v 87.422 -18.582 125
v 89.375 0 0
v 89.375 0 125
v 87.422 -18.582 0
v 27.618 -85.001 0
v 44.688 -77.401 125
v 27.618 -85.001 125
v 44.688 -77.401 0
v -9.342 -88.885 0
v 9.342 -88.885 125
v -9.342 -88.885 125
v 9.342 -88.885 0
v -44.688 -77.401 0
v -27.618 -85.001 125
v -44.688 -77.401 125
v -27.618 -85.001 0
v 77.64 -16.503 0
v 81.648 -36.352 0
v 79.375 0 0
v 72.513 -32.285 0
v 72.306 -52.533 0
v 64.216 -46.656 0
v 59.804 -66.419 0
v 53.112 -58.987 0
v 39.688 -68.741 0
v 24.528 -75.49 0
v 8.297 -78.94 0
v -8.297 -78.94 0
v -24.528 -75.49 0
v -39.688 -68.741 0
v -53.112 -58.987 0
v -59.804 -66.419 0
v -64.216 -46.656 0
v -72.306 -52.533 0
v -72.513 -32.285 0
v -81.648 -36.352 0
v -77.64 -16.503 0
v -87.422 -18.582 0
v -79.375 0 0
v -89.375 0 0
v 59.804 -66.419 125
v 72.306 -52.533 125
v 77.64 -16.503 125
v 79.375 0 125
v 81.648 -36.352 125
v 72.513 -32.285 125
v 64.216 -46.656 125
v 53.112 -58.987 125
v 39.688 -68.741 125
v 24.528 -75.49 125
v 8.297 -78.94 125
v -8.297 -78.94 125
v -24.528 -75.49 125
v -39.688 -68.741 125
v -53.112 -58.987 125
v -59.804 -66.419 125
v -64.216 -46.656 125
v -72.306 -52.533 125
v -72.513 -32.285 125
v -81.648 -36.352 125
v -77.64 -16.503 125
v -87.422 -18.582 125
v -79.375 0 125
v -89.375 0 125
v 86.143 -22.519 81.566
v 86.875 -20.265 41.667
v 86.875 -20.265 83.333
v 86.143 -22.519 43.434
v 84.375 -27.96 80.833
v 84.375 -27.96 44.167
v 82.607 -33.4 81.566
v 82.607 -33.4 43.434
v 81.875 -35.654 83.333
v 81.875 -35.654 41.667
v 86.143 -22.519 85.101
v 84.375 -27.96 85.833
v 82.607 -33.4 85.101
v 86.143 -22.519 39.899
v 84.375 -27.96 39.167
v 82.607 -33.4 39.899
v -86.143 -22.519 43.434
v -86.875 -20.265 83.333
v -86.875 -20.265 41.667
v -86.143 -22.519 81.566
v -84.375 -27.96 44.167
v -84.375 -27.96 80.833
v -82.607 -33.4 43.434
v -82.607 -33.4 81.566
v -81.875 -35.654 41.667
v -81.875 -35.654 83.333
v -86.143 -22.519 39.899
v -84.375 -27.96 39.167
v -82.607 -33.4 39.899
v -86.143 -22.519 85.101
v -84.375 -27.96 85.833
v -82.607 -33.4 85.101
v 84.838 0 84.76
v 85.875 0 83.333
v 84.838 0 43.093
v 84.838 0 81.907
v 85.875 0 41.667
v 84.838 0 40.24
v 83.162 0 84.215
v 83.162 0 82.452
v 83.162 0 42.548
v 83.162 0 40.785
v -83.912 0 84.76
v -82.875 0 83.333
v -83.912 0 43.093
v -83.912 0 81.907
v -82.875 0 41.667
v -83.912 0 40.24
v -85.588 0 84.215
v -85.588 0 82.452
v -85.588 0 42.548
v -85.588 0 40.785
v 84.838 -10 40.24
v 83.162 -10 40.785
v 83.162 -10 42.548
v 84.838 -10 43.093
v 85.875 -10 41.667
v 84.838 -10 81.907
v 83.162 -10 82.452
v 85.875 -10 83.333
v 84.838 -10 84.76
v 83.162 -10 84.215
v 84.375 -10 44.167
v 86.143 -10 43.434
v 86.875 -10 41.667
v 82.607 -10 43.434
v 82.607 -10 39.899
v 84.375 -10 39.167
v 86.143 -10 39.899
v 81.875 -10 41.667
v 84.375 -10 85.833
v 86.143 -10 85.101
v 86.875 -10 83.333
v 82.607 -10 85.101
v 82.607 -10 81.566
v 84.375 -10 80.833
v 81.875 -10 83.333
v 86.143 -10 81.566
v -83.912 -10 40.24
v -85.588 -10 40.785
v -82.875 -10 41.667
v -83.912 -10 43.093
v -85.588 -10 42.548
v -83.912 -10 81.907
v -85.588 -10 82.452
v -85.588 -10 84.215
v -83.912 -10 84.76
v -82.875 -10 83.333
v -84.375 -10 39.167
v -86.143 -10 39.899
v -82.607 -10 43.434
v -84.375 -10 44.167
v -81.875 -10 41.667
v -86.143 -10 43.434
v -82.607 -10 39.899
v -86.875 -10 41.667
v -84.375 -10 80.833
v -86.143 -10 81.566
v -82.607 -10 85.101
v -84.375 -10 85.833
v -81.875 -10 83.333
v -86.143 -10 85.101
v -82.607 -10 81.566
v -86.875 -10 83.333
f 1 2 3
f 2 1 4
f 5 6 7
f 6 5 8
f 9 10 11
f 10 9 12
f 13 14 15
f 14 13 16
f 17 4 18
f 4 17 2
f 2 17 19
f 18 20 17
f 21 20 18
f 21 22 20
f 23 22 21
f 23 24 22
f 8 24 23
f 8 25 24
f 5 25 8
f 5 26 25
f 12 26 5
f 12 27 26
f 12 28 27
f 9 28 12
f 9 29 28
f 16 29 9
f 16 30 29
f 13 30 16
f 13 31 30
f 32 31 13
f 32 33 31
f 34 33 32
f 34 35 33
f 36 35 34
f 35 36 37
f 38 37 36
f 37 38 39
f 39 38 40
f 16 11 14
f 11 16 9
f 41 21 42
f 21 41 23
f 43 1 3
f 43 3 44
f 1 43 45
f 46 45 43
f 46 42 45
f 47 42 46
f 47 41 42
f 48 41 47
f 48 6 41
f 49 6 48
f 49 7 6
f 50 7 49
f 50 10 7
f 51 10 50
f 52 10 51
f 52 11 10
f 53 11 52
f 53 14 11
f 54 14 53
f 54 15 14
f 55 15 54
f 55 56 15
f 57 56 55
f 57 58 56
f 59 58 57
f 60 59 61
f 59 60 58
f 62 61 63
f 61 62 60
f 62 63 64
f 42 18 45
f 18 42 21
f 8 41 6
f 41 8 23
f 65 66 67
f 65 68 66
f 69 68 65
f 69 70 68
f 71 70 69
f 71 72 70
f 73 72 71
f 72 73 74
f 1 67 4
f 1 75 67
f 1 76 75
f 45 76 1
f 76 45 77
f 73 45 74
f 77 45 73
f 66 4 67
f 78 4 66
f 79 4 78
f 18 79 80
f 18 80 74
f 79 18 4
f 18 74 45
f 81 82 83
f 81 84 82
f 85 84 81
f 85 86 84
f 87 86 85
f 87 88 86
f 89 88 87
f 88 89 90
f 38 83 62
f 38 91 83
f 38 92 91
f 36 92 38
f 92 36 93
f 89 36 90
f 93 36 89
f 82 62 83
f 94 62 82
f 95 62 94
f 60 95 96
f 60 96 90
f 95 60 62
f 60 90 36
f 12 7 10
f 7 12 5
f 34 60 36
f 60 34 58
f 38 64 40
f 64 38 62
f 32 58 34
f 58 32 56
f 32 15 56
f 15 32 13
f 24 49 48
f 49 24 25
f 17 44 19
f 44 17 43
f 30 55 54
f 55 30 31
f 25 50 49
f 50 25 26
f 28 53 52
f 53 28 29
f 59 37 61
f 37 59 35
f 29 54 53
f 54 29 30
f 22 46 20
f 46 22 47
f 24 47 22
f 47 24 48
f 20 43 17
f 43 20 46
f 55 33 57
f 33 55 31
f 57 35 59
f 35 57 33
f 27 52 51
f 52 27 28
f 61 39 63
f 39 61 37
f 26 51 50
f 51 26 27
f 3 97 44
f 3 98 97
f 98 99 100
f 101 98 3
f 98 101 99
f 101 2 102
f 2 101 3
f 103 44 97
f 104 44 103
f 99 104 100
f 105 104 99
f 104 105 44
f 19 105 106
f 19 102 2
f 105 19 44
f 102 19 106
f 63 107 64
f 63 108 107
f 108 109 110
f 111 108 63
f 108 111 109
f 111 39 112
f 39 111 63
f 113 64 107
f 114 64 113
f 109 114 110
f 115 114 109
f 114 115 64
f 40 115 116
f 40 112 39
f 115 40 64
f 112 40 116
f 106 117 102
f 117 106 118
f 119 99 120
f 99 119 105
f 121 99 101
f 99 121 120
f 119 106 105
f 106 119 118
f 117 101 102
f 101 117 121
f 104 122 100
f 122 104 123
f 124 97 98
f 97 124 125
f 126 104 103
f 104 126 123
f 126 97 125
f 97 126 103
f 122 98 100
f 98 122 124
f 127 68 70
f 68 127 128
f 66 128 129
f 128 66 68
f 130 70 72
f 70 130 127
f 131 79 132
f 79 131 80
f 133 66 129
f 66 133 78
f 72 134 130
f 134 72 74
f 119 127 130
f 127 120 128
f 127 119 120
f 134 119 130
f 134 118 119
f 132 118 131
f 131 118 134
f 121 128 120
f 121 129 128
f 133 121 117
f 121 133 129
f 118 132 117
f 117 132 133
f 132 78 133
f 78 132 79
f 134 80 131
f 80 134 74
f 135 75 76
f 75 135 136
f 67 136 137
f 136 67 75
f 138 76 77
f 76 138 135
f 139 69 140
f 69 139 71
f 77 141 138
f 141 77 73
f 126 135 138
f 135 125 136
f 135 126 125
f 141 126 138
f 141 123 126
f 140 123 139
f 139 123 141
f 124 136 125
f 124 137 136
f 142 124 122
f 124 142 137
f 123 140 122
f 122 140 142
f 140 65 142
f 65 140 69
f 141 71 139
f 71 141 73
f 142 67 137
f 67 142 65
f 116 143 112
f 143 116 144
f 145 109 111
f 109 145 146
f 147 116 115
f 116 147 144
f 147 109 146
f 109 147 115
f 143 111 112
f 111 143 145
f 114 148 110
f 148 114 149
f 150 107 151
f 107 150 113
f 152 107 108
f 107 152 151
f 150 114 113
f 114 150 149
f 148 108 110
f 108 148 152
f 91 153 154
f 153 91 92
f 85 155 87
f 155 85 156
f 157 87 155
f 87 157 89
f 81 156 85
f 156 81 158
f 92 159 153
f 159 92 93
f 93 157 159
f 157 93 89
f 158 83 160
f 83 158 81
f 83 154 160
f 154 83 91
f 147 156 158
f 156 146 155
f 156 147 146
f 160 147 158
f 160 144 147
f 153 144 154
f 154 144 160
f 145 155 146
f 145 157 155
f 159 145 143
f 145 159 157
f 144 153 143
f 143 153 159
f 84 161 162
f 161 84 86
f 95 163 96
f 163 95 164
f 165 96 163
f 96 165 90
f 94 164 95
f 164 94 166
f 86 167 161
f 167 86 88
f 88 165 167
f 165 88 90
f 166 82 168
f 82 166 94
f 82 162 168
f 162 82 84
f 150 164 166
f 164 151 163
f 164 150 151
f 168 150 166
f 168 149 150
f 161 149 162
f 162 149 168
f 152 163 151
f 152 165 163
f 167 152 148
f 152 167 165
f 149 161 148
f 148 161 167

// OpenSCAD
// tube outside diameter: 158.75mm

TUBE_DIAMETER = 158.75;
COLLAR_LENGTH = 125;
COLLAR_THICKNESS = 10;
BOLT_SHAFT = 3;
BOLT_HEAD = 5;



difference(){
    
    cylinder(r=(TUBE_DIAMETER/2) + COLLAR_THICKNESS, COLLAR_LENGTH);
    
    // tube cut-out
    translate([0,0,-1]){
        cylinder(r=TUBE_DIAMETER/2,h=COLLAR_LENGTH + 3);
    }
    
    // split in half
    translate([-(TUBE_DIAMETER/2)-COLLAR_THICKNESS,0,-1]){
        cube([TUBE_DIAMETER+(COLLAR_THICKNESS*2), (TUBE_DIAMETER/2)+COLLAR_THICKNESS, COLLAR_LENGTH + 3]);
    }
    
    // bolt holes
    // right
    // bottom
    translate([(TUBE_DIAMETER/2)+(COLLAR_THICKNESS/2),0,COLLAR_LENGTH/3]){
        rotate([90,0,0]){
            #cylinder(r=BOLT_SHAFT/2,h=50);
        }
    }

    // top
    translate([(TUBE_DIAMETER/2)+(COLLAR_THICKNESS/2),0,(COLLAR_LENGTH/3)*2]){
        rotate([90,0,0]){
            #cylinder(r=BOLT_SHAFT/2,h=50);
        }
    }
    
    // bolt head hole
    translate([(TUBE_DIAMETER/2)+(COLLAR_THICKNESS/2),-10,COLLAR_LENGTH/3]){
        rotate([90,0,0]){
            #cylinder(r=BOLT_HEAD/2,h=50);
        }
    }
    
    // bottom
    translate([(TUBE_DIAMETER/2)+(COLLAR_THICKNESS/2),-10,(COLLAR_LENGTH/3)*2]){
        rotate([90,0,0]){
            #cylinder(r=BOLT_HEAD/2,h=50);
        }
    }
    
    // left
    // bottom
    translate([-(TUBE_DIAMETER/2)-(COLLAR_THICKNESS/2),0,COLLAR_LENGTH/3]){
        rotate([90,0,0]){
            #cylinder(r=BOLT_SHAFT/2,h=50);
        }
    }

    // top
    translate([(-TUBE_DIAMETER/2)-(COLLAR_THICKNESS/2),0,(COLLAR_LENGTH/3)*2]){
        rotate([90,0,0]){
            #cylinder(r=BOLT_SHAFT/2,h=50);
        }
    }
    
    // bolt head hole
    translate([(-TUBE_DIAMETER/2)-(COLLAR_THICKNESS/2),-10,COLLAR_LENGTH/3]){
        rotate([90,0,0]){
            #cylinder(r=BOLT_HEAD/2,h=50);
        }
    }
    
    // bottom
    translate([(-TUBE_DIAMETER/2)-(COLLAR_THICKNESS/2),-10,(COLLAR_LENGTH/3)*2]){
        rotate([90,0,0]){
            #cylinder(r=BOLT_HEAD/2,h=50);
        }
    }
}
